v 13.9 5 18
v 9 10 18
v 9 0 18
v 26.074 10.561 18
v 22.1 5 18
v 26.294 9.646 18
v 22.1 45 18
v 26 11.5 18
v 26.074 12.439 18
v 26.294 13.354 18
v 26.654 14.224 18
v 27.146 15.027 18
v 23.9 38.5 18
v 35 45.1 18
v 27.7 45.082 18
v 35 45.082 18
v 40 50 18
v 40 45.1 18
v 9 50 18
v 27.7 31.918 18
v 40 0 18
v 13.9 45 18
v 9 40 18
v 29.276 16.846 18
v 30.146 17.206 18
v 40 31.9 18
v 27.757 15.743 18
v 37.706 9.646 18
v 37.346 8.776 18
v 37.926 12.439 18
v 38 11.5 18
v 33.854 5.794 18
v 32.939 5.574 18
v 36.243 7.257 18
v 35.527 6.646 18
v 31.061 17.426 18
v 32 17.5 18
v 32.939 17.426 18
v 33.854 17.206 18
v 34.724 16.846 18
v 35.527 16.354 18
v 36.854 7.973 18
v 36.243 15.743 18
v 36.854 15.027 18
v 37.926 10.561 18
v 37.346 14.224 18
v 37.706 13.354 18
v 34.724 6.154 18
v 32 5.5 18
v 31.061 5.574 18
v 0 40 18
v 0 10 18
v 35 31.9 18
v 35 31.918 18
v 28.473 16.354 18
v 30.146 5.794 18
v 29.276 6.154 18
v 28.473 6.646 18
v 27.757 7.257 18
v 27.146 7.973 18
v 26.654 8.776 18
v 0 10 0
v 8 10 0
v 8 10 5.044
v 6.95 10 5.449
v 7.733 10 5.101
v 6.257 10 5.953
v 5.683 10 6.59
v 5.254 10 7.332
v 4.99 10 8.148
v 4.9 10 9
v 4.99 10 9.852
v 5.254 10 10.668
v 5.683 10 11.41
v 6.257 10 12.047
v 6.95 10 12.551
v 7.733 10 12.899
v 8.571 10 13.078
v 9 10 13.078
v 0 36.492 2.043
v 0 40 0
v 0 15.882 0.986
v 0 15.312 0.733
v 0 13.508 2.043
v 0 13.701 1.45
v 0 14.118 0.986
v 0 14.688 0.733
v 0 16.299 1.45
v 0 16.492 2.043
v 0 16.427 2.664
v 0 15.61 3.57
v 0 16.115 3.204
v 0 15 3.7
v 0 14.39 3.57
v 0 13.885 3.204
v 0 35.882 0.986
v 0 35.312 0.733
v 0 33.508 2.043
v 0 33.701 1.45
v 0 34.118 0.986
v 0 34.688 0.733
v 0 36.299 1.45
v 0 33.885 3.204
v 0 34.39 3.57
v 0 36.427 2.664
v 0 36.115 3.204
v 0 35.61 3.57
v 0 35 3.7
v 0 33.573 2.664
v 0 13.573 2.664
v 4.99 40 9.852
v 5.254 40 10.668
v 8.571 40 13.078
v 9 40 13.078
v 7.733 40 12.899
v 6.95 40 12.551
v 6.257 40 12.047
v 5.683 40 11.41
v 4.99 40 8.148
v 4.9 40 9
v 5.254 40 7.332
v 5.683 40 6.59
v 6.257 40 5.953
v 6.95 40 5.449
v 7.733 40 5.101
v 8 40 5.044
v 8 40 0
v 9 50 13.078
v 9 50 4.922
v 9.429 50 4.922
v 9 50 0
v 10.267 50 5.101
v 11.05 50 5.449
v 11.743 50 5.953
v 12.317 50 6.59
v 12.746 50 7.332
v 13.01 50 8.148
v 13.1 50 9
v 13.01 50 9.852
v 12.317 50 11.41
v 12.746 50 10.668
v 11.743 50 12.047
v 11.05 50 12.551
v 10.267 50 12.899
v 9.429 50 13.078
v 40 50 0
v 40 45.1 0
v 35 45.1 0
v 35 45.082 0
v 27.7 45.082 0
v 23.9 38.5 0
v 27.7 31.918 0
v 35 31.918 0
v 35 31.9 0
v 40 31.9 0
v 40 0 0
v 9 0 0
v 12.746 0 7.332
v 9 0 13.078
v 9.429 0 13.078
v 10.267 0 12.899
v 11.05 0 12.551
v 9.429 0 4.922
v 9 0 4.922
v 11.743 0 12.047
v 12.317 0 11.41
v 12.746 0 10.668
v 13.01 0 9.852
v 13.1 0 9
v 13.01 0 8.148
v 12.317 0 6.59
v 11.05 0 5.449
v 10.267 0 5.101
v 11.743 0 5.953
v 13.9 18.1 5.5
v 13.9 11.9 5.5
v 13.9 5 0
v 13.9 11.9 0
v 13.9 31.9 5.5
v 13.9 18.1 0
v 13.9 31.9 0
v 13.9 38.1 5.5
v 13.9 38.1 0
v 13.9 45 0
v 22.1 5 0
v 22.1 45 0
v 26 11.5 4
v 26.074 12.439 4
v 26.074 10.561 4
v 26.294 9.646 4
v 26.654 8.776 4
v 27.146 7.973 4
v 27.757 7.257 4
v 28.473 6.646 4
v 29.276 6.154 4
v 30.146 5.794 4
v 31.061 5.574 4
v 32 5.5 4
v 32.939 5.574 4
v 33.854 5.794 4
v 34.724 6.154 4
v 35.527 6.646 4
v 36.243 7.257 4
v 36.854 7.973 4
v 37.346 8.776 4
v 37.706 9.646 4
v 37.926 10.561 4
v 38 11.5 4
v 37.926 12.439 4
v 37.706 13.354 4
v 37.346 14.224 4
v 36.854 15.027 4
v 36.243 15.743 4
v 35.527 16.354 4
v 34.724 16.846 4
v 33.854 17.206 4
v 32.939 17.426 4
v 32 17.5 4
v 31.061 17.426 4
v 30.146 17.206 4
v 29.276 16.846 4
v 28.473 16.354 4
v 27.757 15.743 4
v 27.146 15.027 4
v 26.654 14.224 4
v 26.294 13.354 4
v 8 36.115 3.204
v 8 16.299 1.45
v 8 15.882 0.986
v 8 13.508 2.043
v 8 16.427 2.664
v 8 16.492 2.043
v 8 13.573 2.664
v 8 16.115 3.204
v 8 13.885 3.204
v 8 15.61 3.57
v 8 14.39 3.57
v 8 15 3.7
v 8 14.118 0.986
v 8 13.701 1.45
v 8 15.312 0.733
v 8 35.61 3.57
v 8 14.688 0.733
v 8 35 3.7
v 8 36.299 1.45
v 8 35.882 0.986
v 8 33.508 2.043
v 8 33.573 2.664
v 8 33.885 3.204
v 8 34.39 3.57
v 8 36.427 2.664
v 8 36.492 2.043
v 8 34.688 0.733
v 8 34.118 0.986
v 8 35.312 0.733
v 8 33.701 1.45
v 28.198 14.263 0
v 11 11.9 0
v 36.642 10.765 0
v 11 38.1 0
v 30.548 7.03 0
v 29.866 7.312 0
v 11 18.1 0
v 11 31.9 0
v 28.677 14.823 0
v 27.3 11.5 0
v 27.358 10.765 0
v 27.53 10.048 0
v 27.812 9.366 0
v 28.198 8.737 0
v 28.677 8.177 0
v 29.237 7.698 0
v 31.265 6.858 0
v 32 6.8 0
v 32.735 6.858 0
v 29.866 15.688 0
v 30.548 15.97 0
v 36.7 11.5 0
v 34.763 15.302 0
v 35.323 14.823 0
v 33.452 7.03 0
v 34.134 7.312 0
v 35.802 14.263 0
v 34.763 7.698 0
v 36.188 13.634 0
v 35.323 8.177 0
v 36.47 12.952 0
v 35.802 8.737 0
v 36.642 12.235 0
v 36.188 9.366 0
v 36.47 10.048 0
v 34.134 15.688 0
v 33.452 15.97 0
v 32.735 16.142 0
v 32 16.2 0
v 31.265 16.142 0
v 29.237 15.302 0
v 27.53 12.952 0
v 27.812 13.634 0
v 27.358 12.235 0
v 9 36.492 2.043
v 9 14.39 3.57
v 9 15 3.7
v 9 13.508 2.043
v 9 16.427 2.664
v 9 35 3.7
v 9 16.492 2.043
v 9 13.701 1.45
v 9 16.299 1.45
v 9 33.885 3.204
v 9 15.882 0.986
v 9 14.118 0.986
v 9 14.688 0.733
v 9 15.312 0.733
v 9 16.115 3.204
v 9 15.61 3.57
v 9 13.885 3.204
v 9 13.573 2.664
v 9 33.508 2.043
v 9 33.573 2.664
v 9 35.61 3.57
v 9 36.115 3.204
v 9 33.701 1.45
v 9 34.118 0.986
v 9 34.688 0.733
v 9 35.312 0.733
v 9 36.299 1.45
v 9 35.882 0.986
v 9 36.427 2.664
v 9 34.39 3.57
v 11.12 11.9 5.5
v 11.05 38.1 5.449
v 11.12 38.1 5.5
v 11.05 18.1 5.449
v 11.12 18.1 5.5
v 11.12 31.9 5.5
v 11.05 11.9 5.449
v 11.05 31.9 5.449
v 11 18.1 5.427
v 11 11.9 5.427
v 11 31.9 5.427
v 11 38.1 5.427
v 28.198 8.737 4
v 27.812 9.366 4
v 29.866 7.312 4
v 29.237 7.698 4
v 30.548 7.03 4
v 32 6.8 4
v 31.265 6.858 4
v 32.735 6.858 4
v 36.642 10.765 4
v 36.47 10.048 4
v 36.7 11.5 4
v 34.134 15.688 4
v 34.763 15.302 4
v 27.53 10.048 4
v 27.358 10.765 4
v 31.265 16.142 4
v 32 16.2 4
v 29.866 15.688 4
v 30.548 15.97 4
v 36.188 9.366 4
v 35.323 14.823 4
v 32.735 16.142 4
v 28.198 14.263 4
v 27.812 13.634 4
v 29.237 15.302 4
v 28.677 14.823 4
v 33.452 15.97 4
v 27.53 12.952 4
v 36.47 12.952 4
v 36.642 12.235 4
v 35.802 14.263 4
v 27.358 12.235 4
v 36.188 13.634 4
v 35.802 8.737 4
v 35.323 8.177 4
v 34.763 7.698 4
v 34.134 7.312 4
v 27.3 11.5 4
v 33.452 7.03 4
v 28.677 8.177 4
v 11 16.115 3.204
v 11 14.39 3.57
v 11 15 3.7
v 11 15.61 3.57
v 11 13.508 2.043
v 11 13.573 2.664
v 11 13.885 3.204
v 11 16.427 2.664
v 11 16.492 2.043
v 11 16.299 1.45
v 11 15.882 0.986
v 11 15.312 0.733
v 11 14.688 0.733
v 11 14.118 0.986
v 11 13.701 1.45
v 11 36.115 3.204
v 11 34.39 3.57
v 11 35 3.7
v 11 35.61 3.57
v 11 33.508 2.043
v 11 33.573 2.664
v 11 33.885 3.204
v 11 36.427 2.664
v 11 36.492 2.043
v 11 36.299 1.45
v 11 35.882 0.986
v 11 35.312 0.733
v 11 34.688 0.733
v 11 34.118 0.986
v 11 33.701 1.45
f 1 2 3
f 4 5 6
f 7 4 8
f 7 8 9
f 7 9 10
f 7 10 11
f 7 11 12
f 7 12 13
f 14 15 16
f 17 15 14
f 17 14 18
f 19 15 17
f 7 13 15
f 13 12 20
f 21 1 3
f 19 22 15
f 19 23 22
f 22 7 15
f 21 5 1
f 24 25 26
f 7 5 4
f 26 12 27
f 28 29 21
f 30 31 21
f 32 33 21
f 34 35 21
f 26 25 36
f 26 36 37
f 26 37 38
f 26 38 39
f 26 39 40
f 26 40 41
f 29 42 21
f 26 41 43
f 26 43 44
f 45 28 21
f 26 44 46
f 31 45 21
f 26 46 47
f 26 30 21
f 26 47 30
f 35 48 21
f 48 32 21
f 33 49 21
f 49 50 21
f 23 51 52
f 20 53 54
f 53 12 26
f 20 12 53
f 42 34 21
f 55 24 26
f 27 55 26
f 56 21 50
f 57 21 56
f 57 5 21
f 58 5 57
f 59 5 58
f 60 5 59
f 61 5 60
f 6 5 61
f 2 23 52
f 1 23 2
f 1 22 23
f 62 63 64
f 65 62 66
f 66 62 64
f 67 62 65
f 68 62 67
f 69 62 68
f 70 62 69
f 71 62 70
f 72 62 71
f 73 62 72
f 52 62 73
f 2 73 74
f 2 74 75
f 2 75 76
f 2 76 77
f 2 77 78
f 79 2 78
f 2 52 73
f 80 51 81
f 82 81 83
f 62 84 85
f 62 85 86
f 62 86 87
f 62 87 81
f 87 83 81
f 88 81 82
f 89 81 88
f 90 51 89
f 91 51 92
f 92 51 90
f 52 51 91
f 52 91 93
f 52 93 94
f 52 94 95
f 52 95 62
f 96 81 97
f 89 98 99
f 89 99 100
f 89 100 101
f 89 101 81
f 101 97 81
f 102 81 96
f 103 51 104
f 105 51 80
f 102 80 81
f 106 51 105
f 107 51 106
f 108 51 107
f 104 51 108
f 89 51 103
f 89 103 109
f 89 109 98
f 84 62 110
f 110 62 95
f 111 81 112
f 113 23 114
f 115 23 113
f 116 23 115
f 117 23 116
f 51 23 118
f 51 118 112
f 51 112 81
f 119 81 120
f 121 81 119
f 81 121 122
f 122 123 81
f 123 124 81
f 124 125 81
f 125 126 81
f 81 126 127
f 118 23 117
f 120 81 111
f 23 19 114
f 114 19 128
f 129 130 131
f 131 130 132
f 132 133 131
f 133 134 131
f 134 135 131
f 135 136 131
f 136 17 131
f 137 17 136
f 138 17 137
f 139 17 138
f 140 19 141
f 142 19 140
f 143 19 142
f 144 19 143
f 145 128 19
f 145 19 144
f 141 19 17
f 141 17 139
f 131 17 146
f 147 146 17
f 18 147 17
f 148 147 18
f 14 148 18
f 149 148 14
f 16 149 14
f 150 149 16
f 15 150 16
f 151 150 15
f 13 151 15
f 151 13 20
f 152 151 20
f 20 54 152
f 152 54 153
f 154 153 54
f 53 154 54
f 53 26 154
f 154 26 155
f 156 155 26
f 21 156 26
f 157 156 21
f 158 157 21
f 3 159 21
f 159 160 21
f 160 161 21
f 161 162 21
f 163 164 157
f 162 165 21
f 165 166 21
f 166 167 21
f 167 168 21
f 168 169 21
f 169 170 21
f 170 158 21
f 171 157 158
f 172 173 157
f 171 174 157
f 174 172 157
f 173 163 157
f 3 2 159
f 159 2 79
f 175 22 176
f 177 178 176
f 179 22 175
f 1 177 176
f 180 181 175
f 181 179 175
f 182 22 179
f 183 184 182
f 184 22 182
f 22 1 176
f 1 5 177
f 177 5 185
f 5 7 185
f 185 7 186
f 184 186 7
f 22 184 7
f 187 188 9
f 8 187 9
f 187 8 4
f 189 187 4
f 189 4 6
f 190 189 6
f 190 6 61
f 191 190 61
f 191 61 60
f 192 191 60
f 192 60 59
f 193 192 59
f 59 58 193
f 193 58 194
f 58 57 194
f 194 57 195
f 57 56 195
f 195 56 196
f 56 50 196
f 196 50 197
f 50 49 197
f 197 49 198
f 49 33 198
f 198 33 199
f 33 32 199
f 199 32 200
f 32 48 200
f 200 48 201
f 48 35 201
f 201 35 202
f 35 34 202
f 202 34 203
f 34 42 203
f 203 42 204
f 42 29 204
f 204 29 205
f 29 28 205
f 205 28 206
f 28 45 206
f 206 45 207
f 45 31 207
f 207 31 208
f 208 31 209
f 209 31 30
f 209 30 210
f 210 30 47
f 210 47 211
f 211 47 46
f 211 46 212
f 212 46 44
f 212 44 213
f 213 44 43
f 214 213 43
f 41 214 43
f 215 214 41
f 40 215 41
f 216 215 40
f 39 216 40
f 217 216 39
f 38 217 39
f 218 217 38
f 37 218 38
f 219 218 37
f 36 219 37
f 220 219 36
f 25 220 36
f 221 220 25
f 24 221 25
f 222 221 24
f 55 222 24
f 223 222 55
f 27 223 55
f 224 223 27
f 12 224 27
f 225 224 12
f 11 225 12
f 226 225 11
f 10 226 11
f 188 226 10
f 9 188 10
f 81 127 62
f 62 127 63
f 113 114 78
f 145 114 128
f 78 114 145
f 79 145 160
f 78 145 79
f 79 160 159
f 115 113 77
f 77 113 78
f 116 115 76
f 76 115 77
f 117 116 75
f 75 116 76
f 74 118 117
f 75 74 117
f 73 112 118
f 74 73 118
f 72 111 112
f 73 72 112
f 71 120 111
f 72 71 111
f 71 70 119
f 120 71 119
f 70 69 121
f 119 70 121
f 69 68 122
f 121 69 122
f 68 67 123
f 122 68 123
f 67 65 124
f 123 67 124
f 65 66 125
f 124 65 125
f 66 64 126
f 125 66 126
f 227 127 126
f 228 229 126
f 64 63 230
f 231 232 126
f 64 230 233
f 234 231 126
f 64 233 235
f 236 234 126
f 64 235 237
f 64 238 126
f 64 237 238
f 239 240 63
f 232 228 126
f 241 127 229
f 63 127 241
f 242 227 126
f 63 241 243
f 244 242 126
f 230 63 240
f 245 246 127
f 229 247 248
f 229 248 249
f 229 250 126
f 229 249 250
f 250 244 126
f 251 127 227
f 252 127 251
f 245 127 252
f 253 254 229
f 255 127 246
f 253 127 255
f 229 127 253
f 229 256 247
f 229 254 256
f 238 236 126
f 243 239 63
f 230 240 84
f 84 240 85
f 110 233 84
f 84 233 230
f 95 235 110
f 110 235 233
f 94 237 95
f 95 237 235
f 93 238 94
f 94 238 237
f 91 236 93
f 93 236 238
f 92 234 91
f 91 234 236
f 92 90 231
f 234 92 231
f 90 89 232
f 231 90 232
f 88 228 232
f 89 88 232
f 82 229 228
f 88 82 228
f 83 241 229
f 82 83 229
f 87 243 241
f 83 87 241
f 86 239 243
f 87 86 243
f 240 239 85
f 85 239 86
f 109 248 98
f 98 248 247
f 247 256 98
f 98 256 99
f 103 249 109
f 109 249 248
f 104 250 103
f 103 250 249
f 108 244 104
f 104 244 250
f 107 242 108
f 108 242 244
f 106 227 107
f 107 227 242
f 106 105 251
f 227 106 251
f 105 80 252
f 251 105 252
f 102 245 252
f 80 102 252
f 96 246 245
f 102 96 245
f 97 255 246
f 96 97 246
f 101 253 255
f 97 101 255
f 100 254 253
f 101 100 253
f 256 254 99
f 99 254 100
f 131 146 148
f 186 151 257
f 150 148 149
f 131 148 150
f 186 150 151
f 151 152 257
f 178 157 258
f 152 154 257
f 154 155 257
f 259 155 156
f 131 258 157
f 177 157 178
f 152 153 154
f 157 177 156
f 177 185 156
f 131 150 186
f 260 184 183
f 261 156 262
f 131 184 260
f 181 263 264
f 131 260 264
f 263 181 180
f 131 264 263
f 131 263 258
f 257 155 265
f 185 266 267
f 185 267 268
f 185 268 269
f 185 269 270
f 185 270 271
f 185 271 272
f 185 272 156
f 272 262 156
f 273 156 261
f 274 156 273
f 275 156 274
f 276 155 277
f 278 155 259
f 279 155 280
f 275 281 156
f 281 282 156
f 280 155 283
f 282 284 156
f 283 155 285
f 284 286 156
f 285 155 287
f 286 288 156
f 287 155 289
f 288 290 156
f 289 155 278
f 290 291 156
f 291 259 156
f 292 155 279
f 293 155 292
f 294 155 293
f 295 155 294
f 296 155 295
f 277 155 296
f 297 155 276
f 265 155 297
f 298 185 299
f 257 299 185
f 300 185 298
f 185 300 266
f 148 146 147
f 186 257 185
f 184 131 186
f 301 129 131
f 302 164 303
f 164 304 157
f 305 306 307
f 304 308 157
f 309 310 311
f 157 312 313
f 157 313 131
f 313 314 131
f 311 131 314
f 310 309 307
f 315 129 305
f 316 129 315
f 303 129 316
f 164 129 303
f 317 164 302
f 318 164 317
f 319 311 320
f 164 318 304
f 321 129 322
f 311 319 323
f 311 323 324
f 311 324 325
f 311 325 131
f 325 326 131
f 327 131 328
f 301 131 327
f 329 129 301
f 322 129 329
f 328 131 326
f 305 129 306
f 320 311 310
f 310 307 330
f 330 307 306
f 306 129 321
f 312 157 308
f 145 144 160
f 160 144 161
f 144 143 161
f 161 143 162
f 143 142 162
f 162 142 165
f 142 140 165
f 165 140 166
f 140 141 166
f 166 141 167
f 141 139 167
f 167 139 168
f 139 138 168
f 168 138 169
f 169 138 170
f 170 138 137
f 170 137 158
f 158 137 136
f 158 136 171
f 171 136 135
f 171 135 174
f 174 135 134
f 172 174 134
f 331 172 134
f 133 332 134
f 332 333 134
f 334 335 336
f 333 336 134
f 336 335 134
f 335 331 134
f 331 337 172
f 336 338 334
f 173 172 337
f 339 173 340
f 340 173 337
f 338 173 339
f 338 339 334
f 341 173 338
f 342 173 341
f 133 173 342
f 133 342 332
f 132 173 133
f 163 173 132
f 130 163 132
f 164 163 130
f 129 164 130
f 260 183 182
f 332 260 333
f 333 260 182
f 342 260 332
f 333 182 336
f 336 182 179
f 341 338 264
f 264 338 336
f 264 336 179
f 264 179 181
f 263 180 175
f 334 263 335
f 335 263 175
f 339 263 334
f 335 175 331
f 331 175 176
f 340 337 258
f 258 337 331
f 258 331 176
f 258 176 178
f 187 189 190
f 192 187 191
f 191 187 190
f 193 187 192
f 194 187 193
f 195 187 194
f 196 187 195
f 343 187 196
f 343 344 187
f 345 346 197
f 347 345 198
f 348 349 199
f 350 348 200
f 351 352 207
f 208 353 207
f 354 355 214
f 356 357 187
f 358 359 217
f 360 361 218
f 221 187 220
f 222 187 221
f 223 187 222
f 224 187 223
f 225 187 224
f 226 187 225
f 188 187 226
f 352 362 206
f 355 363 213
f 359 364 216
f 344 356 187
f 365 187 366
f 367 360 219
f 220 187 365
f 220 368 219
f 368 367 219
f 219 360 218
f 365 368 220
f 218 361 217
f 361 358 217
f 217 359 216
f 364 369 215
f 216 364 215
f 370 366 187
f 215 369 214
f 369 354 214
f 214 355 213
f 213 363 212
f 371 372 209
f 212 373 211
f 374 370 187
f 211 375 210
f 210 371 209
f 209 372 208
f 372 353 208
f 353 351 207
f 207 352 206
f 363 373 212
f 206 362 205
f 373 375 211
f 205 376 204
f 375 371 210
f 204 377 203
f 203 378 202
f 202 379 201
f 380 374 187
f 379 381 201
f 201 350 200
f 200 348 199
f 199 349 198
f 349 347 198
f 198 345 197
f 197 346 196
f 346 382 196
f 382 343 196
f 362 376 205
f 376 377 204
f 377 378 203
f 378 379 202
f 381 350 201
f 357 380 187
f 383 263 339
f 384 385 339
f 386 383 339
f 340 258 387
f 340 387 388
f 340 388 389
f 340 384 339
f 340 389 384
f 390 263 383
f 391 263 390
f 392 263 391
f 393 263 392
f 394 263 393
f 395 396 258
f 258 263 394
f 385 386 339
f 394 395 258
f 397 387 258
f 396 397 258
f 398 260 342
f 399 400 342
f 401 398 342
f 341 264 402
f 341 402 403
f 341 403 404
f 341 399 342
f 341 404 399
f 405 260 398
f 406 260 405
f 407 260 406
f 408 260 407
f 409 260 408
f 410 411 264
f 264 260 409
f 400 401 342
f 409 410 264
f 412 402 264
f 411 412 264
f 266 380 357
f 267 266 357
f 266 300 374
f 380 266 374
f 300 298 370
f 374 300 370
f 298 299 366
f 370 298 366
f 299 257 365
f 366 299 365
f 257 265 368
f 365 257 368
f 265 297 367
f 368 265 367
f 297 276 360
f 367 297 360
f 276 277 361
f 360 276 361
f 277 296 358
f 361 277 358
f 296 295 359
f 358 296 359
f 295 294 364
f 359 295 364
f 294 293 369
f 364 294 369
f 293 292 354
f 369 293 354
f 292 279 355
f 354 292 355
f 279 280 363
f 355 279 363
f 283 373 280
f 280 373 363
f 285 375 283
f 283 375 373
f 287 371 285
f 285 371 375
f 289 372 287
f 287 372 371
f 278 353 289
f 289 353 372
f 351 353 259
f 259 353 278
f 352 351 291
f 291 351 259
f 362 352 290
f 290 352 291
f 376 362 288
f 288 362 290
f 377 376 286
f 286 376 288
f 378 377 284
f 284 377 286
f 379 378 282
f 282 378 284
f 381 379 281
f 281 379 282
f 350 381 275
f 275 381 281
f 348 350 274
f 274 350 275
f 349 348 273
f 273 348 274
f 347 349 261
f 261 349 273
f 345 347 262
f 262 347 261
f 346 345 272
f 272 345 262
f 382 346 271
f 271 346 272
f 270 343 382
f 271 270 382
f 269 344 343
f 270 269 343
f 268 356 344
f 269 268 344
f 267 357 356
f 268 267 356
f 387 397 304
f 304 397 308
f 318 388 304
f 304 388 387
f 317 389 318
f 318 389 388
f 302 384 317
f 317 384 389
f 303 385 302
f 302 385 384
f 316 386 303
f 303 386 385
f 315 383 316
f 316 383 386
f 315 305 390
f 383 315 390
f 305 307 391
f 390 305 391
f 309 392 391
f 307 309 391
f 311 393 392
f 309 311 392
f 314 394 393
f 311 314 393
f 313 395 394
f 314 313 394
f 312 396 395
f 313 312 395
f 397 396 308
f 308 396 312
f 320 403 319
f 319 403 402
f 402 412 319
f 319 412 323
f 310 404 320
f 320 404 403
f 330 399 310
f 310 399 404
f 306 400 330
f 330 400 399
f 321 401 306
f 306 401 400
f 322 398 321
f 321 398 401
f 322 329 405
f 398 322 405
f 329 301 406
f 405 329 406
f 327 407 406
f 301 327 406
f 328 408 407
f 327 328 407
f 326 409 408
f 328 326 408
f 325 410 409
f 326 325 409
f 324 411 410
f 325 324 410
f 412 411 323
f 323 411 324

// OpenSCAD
// file: part15.scad
module block() {
difference() {
	cube([40,50,18]);
	translate([13.9,5,-1])cube([8.2,40,23]);
	translate([18,25,5])cylinder(15,r=1.5,$fn=15);

	// втулка
translate([0,0.5,0]) {
	translate([32,11,-1]) cylinder(20,r=4.7,$fn=40);
	translate([32,11,-1]) cylinder(15,r=12/2,$fn=40);
}
	// гайка
translate([0,-0.5,0]) {
	translate([32,39,-1])cylinder(6.4,r=4.7,$fn=40);
	translate([32,39,10])cylinder(9,r=4.7,$fn=40);
	translate([35,32.4,-1])cube([6,13.2,20]);
	translate ([31.5,39,-1]) cylinder(20,r=15.2/2,$fa=60);
}

	// направляющая
	translate([9,-1,9])rotate([-90,0,0])cylinder(52,r=4.1,$fn=30);
	// вырезы у направляющей
	translate([-1,40,-1])cube([10,20,20]);
	translate([-1,-1,-1])cube([10,11,20]);
	translate([8,-1,8])cube([1,52,11]);

	// отверстие 1
	translate([-1,15,15.8])rotate([0,90,0])cylinder(15,r=1.5,$fn=15);
	translate([11,11.9,12.5])cube([3,6.2,6]);

	// отверстие 2
	translate([0,20,0]) {
		translate([-1,15,15.8])rotate([0,90,0])cylinder(15,r=1.5,$fn=15);
		translate([11,11.9,12.5])cube([3,6.2,6]);
	}
}
}
// main file
include <part15.scad>
translate([0,0,18])
mirror([0,0,1])
block();
